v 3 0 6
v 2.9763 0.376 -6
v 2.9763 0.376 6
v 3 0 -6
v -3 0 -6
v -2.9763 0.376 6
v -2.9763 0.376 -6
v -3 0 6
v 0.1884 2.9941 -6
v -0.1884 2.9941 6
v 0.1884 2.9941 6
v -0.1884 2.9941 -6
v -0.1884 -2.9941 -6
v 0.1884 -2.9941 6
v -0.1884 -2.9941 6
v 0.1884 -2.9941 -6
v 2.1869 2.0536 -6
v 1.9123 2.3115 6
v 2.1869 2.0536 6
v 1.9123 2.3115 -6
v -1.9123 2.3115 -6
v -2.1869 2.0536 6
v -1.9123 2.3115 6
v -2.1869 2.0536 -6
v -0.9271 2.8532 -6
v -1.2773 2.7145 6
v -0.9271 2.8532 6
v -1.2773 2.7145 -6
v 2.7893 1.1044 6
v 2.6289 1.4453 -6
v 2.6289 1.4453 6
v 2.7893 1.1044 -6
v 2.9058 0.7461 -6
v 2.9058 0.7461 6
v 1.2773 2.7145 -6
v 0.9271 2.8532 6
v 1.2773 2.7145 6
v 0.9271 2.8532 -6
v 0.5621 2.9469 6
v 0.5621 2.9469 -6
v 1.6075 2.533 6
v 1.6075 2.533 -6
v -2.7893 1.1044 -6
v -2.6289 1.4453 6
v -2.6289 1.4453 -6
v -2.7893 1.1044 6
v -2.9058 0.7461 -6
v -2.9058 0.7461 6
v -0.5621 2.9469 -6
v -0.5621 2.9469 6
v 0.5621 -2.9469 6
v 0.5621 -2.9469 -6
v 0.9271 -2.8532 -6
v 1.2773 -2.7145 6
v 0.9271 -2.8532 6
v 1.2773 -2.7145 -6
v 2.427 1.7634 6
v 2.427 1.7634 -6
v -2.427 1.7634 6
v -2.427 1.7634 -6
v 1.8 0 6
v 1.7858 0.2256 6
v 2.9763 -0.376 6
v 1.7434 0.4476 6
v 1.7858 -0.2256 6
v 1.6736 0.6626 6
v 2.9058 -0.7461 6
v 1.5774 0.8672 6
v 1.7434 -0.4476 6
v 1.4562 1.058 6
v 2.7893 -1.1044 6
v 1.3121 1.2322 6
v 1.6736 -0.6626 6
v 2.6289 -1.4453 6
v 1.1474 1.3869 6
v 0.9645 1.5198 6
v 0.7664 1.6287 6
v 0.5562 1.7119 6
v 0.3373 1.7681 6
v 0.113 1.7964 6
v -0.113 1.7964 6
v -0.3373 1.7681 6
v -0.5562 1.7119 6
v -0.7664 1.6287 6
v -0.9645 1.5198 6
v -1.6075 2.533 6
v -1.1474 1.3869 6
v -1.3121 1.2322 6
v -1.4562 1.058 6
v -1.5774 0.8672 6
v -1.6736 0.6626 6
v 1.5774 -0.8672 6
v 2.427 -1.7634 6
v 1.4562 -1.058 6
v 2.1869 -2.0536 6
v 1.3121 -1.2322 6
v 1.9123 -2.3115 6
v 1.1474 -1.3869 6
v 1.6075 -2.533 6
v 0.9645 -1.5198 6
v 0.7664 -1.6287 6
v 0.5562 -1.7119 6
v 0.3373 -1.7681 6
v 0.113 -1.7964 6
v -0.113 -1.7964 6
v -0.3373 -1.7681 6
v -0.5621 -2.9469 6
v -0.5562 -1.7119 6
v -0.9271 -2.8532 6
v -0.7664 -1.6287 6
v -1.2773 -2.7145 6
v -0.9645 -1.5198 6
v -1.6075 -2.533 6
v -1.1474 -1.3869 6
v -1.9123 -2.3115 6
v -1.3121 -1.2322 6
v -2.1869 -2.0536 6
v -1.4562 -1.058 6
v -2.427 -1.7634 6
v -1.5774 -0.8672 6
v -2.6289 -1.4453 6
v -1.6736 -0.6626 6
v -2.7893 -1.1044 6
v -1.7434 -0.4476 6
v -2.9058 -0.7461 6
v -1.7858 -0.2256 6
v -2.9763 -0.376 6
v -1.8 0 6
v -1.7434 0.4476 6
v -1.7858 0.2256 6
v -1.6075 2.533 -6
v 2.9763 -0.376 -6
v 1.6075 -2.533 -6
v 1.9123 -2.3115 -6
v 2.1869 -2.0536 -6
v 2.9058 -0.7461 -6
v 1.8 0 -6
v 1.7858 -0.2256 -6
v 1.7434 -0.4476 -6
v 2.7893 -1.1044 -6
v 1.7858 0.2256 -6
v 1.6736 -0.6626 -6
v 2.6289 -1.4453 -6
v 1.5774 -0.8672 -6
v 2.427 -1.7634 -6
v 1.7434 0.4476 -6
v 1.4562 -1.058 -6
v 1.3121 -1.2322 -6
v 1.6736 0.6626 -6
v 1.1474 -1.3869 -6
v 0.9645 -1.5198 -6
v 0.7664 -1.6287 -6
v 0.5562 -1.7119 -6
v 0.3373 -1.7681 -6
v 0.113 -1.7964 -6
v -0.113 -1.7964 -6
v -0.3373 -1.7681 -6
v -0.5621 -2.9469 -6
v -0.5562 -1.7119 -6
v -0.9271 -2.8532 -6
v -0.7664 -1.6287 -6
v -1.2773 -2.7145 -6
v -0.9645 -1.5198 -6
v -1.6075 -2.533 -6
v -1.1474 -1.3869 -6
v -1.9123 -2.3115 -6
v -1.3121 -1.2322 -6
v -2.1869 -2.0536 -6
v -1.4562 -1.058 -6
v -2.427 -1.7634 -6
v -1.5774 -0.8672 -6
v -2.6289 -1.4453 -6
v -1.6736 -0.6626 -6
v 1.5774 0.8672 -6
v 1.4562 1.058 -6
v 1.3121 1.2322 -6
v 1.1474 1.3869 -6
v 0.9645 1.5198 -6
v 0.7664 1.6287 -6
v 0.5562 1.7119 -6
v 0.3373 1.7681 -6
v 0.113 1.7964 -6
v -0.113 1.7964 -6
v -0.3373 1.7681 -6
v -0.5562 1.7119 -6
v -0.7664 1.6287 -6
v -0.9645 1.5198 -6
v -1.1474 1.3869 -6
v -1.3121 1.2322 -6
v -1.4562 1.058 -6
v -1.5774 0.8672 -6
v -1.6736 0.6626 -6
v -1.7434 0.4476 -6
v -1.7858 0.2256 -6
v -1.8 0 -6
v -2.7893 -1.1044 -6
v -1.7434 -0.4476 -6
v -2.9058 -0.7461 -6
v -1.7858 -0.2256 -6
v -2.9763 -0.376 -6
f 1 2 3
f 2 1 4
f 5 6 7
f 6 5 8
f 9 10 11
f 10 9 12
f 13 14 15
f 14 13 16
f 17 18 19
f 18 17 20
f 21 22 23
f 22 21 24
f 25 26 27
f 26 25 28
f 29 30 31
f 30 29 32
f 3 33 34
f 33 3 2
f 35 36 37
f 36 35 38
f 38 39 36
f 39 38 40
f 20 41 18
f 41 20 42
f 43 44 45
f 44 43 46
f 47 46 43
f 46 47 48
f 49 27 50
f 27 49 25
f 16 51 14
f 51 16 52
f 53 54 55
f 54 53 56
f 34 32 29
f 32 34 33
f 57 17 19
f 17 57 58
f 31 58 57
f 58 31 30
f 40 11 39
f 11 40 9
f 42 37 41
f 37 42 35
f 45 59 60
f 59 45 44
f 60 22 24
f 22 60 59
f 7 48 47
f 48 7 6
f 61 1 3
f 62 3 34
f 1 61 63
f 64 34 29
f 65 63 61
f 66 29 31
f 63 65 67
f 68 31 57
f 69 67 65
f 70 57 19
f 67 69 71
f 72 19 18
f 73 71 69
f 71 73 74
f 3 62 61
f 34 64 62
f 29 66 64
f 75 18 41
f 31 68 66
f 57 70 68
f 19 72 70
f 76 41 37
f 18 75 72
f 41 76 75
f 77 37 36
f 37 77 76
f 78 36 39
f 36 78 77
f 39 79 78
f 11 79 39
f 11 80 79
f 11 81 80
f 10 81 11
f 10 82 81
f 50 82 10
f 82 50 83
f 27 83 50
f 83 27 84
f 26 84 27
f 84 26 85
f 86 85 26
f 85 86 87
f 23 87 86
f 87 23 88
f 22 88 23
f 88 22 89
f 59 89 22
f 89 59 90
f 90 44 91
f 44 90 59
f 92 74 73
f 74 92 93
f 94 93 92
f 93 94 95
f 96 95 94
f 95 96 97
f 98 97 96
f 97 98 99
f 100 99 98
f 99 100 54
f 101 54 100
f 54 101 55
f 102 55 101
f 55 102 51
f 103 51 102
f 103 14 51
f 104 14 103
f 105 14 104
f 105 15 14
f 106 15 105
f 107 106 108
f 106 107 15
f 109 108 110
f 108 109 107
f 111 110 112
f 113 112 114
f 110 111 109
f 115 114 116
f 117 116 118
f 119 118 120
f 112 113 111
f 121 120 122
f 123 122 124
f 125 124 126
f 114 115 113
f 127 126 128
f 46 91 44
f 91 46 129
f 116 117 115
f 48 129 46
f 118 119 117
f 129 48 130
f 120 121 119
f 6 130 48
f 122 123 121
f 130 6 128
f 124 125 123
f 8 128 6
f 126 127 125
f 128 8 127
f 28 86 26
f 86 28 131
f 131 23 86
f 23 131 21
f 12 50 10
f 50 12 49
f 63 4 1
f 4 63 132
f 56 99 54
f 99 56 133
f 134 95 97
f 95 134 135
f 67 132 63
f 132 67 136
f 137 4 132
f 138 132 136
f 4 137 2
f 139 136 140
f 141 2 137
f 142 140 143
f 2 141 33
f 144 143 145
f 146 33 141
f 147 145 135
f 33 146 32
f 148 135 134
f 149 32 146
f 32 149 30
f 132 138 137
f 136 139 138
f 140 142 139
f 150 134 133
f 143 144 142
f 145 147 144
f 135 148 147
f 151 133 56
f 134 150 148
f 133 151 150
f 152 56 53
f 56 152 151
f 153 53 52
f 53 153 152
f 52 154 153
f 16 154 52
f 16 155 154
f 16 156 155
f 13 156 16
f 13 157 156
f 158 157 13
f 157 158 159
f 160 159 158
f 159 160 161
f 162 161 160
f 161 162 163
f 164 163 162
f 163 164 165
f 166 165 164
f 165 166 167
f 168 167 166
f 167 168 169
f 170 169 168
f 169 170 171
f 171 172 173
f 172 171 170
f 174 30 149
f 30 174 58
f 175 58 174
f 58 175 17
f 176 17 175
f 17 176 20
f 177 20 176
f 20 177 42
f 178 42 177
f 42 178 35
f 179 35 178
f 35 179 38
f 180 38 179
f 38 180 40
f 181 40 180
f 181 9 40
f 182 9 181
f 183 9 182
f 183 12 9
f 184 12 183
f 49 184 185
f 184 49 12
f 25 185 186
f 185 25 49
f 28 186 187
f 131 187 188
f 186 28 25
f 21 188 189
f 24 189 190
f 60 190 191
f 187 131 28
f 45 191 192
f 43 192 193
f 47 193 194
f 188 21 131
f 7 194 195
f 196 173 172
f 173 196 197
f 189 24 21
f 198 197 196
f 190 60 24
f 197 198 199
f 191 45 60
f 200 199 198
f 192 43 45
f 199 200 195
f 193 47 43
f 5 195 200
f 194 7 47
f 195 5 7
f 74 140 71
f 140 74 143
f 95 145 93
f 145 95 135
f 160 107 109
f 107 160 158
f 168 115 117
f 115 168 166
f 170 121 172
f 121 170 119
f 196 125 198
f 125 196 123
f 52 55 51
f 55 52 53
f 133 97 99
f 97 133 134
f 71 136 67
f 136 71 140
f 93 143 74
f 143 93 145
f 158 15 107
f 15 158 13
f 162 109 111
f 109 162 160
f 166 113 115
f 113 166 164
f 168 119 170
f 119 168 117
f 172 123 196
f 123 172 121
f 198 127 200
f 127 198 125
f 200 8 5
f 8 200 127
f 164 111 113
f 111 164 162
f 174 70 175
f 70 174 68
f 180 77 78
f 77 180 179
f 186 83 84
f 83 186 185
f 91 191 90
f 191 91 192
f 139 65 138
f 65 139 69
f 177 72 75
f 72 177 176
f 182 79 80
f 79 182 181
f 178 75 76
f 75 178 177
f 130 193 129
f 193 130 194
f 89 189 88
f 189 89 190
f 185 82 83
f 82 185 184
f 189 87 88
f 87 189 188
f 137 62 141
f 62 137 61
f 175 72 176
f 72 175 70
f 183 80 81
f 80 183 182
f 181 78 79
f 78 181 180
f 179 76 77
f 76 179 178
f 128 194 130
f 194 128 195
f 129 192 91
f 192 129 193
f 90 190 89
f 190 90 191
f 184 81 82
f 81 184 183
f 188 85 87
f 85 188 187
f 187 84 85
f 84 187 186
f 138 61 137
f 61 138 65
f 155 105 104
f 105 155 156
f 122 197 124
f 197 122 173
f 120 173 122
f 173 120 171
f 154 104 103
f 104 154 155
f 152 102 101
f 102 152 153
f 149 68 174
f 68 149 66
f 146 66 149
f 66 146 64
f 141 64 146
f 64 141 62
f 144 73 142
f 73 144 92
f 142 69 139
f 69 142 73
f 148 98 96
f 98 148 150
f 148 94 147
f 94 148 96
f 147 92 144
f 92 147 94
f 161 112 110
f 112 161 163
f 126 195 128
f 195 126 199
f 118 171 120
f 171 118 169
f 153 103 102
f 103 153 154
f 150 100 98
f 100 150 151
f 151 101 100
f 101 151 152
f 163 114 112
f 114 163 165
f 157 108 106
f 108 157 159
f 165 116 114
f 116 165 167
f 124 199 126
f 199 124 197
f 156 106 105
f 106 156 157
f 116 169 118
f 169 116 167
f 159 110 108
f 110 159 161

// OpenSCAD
$fn = 50;


difference() {
	union() {
		translate(v = [0, 0, -6.0000000000]) {
			cylinder(h = 12, r = 3.0000000000);
		}
	}
	union() {
		translate(v = [0, 0, -100.0000000000]) {
			cylinder(h = 200, r = 1.8000000000);
		}
	}
}
